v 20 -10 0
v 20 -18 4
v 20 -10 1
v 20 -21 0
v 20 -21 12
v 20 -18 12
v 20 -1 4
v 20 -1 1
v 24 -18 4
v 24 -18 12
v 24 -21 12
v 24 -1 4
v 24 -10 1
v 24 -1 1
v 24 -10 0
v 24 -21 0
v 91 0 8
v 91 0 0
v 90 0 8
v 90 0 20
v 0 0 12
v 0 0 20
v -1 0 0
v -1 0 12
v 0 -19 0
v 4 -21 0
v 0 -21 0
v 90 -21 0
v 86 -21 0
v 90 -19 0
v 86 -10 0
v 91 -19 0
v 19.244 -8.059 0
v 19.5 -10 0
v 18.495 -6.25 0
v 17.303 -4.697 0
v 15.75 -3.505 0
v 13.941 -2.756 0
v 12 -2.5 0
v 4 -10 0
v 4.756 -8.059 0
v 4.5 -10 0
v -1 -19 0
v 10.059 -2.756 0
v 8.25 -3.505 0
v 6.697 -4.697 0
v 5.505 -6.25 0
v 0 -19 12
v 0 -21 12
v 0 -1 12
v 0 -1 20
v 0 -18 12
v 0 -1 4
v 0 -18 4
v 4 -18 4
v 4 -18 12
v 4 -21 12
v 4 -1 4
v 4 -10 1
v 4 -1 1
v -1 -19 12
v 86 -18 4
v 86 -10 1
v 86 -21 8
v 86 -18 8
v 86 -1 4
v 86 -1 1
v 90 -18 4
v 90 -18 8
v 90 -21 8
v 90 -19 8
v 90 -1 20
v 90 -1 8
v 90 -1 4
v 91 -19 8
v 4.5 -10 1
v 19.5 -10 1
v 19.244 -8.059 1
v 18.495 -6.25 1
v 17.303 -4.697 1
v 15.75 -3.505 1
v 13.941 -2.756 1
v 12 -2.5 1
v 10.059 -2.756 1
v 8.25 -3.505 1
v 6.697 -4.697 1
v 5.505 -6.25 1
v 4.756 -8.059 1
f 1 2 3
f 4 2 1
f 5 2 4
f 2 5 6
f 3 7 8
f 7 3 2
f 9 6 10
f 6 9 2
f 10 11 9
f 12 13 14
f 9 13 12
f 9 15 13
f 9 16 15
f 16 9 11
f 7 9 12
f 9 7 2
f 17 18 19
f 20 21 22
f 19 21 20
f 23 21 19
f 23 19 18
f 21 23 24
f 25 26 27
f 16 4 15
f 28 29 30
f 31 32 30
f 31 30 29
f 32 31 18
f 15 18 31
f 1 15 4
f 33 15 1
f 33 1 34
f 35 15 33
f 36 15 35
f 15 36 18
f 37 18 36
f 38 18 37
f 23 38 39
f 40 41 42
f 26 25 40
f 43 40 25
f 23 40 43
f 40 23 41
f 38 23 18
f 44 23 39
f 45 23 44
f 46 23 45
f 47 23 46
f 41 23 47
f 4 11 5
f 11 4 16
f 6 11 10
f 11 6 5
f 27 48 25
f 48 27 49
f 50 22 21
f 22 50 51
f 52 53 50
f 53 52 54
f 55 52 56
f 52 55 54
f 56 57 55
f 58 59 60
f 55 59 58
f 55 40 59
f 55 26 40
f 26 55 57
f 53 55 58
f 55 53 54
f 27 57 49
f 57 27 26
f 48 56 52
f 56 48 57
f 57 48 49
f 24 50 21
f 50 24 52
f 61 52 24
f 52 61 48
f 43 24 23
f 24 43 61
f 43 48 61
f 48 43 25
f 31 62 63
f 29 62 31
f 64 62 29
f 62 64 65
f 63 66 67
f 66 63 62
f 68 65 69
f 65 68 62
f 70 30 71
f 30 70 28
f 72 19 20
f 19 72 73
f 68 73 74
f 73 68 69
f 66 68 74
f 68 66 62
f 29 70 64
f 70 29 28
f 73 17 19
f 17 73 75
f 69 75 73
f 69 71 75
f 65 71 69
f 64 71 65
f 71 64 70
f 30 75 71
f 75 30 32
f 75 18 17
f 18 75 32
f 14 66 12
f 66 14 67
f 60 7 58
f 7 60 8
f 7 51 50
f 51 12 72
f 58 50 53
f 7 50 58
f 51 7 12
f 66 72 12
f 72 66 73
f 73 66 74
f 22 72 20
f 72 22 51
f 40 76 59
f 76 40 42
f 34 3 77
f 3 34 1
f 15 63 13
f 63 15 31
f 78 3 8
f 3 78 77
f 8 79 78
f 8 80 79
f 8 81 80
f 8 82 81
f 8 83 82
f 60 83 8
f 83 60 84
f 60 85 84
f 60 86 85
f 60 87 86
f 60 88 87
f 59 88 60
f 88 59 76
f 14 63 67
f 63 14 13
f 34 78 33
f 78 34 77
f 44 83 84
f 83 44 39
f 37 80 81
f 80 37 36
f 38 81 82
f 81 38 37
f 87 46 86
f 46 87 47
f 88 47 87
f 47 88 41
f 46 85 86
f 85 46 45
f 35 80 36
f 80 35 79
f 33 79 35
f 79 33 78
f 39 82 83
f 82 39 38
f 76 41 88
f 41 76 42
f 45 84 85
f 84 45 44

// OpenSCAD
module hook(y,c=0) {
    union() {
        cube([4,4,18]);
        
        translate([0,0,18])
        cube([4,y,3]);
        
        if (c==1) {
            translate([-1,0,0])
            cube([1,y,19]);
        }
        if (c==2) {
            translate([4,0,0])
            cube([1,y,19]);
        }
    }
}

module assembly() {
rotate([90,0,0])
    union() {
        cube([90,20,1]);
        
        cube([90,1,10]);

        translate([0,0,0])
        hook(12,1);

        translate([20,0,0])
        hook(12);

        translate([86,0,0])
        hook(8,2);
    }
}

difference() {
    assembly();
    
    translate([12,-10,0])
    cylinder(h=3,d=15,center=true);
}
